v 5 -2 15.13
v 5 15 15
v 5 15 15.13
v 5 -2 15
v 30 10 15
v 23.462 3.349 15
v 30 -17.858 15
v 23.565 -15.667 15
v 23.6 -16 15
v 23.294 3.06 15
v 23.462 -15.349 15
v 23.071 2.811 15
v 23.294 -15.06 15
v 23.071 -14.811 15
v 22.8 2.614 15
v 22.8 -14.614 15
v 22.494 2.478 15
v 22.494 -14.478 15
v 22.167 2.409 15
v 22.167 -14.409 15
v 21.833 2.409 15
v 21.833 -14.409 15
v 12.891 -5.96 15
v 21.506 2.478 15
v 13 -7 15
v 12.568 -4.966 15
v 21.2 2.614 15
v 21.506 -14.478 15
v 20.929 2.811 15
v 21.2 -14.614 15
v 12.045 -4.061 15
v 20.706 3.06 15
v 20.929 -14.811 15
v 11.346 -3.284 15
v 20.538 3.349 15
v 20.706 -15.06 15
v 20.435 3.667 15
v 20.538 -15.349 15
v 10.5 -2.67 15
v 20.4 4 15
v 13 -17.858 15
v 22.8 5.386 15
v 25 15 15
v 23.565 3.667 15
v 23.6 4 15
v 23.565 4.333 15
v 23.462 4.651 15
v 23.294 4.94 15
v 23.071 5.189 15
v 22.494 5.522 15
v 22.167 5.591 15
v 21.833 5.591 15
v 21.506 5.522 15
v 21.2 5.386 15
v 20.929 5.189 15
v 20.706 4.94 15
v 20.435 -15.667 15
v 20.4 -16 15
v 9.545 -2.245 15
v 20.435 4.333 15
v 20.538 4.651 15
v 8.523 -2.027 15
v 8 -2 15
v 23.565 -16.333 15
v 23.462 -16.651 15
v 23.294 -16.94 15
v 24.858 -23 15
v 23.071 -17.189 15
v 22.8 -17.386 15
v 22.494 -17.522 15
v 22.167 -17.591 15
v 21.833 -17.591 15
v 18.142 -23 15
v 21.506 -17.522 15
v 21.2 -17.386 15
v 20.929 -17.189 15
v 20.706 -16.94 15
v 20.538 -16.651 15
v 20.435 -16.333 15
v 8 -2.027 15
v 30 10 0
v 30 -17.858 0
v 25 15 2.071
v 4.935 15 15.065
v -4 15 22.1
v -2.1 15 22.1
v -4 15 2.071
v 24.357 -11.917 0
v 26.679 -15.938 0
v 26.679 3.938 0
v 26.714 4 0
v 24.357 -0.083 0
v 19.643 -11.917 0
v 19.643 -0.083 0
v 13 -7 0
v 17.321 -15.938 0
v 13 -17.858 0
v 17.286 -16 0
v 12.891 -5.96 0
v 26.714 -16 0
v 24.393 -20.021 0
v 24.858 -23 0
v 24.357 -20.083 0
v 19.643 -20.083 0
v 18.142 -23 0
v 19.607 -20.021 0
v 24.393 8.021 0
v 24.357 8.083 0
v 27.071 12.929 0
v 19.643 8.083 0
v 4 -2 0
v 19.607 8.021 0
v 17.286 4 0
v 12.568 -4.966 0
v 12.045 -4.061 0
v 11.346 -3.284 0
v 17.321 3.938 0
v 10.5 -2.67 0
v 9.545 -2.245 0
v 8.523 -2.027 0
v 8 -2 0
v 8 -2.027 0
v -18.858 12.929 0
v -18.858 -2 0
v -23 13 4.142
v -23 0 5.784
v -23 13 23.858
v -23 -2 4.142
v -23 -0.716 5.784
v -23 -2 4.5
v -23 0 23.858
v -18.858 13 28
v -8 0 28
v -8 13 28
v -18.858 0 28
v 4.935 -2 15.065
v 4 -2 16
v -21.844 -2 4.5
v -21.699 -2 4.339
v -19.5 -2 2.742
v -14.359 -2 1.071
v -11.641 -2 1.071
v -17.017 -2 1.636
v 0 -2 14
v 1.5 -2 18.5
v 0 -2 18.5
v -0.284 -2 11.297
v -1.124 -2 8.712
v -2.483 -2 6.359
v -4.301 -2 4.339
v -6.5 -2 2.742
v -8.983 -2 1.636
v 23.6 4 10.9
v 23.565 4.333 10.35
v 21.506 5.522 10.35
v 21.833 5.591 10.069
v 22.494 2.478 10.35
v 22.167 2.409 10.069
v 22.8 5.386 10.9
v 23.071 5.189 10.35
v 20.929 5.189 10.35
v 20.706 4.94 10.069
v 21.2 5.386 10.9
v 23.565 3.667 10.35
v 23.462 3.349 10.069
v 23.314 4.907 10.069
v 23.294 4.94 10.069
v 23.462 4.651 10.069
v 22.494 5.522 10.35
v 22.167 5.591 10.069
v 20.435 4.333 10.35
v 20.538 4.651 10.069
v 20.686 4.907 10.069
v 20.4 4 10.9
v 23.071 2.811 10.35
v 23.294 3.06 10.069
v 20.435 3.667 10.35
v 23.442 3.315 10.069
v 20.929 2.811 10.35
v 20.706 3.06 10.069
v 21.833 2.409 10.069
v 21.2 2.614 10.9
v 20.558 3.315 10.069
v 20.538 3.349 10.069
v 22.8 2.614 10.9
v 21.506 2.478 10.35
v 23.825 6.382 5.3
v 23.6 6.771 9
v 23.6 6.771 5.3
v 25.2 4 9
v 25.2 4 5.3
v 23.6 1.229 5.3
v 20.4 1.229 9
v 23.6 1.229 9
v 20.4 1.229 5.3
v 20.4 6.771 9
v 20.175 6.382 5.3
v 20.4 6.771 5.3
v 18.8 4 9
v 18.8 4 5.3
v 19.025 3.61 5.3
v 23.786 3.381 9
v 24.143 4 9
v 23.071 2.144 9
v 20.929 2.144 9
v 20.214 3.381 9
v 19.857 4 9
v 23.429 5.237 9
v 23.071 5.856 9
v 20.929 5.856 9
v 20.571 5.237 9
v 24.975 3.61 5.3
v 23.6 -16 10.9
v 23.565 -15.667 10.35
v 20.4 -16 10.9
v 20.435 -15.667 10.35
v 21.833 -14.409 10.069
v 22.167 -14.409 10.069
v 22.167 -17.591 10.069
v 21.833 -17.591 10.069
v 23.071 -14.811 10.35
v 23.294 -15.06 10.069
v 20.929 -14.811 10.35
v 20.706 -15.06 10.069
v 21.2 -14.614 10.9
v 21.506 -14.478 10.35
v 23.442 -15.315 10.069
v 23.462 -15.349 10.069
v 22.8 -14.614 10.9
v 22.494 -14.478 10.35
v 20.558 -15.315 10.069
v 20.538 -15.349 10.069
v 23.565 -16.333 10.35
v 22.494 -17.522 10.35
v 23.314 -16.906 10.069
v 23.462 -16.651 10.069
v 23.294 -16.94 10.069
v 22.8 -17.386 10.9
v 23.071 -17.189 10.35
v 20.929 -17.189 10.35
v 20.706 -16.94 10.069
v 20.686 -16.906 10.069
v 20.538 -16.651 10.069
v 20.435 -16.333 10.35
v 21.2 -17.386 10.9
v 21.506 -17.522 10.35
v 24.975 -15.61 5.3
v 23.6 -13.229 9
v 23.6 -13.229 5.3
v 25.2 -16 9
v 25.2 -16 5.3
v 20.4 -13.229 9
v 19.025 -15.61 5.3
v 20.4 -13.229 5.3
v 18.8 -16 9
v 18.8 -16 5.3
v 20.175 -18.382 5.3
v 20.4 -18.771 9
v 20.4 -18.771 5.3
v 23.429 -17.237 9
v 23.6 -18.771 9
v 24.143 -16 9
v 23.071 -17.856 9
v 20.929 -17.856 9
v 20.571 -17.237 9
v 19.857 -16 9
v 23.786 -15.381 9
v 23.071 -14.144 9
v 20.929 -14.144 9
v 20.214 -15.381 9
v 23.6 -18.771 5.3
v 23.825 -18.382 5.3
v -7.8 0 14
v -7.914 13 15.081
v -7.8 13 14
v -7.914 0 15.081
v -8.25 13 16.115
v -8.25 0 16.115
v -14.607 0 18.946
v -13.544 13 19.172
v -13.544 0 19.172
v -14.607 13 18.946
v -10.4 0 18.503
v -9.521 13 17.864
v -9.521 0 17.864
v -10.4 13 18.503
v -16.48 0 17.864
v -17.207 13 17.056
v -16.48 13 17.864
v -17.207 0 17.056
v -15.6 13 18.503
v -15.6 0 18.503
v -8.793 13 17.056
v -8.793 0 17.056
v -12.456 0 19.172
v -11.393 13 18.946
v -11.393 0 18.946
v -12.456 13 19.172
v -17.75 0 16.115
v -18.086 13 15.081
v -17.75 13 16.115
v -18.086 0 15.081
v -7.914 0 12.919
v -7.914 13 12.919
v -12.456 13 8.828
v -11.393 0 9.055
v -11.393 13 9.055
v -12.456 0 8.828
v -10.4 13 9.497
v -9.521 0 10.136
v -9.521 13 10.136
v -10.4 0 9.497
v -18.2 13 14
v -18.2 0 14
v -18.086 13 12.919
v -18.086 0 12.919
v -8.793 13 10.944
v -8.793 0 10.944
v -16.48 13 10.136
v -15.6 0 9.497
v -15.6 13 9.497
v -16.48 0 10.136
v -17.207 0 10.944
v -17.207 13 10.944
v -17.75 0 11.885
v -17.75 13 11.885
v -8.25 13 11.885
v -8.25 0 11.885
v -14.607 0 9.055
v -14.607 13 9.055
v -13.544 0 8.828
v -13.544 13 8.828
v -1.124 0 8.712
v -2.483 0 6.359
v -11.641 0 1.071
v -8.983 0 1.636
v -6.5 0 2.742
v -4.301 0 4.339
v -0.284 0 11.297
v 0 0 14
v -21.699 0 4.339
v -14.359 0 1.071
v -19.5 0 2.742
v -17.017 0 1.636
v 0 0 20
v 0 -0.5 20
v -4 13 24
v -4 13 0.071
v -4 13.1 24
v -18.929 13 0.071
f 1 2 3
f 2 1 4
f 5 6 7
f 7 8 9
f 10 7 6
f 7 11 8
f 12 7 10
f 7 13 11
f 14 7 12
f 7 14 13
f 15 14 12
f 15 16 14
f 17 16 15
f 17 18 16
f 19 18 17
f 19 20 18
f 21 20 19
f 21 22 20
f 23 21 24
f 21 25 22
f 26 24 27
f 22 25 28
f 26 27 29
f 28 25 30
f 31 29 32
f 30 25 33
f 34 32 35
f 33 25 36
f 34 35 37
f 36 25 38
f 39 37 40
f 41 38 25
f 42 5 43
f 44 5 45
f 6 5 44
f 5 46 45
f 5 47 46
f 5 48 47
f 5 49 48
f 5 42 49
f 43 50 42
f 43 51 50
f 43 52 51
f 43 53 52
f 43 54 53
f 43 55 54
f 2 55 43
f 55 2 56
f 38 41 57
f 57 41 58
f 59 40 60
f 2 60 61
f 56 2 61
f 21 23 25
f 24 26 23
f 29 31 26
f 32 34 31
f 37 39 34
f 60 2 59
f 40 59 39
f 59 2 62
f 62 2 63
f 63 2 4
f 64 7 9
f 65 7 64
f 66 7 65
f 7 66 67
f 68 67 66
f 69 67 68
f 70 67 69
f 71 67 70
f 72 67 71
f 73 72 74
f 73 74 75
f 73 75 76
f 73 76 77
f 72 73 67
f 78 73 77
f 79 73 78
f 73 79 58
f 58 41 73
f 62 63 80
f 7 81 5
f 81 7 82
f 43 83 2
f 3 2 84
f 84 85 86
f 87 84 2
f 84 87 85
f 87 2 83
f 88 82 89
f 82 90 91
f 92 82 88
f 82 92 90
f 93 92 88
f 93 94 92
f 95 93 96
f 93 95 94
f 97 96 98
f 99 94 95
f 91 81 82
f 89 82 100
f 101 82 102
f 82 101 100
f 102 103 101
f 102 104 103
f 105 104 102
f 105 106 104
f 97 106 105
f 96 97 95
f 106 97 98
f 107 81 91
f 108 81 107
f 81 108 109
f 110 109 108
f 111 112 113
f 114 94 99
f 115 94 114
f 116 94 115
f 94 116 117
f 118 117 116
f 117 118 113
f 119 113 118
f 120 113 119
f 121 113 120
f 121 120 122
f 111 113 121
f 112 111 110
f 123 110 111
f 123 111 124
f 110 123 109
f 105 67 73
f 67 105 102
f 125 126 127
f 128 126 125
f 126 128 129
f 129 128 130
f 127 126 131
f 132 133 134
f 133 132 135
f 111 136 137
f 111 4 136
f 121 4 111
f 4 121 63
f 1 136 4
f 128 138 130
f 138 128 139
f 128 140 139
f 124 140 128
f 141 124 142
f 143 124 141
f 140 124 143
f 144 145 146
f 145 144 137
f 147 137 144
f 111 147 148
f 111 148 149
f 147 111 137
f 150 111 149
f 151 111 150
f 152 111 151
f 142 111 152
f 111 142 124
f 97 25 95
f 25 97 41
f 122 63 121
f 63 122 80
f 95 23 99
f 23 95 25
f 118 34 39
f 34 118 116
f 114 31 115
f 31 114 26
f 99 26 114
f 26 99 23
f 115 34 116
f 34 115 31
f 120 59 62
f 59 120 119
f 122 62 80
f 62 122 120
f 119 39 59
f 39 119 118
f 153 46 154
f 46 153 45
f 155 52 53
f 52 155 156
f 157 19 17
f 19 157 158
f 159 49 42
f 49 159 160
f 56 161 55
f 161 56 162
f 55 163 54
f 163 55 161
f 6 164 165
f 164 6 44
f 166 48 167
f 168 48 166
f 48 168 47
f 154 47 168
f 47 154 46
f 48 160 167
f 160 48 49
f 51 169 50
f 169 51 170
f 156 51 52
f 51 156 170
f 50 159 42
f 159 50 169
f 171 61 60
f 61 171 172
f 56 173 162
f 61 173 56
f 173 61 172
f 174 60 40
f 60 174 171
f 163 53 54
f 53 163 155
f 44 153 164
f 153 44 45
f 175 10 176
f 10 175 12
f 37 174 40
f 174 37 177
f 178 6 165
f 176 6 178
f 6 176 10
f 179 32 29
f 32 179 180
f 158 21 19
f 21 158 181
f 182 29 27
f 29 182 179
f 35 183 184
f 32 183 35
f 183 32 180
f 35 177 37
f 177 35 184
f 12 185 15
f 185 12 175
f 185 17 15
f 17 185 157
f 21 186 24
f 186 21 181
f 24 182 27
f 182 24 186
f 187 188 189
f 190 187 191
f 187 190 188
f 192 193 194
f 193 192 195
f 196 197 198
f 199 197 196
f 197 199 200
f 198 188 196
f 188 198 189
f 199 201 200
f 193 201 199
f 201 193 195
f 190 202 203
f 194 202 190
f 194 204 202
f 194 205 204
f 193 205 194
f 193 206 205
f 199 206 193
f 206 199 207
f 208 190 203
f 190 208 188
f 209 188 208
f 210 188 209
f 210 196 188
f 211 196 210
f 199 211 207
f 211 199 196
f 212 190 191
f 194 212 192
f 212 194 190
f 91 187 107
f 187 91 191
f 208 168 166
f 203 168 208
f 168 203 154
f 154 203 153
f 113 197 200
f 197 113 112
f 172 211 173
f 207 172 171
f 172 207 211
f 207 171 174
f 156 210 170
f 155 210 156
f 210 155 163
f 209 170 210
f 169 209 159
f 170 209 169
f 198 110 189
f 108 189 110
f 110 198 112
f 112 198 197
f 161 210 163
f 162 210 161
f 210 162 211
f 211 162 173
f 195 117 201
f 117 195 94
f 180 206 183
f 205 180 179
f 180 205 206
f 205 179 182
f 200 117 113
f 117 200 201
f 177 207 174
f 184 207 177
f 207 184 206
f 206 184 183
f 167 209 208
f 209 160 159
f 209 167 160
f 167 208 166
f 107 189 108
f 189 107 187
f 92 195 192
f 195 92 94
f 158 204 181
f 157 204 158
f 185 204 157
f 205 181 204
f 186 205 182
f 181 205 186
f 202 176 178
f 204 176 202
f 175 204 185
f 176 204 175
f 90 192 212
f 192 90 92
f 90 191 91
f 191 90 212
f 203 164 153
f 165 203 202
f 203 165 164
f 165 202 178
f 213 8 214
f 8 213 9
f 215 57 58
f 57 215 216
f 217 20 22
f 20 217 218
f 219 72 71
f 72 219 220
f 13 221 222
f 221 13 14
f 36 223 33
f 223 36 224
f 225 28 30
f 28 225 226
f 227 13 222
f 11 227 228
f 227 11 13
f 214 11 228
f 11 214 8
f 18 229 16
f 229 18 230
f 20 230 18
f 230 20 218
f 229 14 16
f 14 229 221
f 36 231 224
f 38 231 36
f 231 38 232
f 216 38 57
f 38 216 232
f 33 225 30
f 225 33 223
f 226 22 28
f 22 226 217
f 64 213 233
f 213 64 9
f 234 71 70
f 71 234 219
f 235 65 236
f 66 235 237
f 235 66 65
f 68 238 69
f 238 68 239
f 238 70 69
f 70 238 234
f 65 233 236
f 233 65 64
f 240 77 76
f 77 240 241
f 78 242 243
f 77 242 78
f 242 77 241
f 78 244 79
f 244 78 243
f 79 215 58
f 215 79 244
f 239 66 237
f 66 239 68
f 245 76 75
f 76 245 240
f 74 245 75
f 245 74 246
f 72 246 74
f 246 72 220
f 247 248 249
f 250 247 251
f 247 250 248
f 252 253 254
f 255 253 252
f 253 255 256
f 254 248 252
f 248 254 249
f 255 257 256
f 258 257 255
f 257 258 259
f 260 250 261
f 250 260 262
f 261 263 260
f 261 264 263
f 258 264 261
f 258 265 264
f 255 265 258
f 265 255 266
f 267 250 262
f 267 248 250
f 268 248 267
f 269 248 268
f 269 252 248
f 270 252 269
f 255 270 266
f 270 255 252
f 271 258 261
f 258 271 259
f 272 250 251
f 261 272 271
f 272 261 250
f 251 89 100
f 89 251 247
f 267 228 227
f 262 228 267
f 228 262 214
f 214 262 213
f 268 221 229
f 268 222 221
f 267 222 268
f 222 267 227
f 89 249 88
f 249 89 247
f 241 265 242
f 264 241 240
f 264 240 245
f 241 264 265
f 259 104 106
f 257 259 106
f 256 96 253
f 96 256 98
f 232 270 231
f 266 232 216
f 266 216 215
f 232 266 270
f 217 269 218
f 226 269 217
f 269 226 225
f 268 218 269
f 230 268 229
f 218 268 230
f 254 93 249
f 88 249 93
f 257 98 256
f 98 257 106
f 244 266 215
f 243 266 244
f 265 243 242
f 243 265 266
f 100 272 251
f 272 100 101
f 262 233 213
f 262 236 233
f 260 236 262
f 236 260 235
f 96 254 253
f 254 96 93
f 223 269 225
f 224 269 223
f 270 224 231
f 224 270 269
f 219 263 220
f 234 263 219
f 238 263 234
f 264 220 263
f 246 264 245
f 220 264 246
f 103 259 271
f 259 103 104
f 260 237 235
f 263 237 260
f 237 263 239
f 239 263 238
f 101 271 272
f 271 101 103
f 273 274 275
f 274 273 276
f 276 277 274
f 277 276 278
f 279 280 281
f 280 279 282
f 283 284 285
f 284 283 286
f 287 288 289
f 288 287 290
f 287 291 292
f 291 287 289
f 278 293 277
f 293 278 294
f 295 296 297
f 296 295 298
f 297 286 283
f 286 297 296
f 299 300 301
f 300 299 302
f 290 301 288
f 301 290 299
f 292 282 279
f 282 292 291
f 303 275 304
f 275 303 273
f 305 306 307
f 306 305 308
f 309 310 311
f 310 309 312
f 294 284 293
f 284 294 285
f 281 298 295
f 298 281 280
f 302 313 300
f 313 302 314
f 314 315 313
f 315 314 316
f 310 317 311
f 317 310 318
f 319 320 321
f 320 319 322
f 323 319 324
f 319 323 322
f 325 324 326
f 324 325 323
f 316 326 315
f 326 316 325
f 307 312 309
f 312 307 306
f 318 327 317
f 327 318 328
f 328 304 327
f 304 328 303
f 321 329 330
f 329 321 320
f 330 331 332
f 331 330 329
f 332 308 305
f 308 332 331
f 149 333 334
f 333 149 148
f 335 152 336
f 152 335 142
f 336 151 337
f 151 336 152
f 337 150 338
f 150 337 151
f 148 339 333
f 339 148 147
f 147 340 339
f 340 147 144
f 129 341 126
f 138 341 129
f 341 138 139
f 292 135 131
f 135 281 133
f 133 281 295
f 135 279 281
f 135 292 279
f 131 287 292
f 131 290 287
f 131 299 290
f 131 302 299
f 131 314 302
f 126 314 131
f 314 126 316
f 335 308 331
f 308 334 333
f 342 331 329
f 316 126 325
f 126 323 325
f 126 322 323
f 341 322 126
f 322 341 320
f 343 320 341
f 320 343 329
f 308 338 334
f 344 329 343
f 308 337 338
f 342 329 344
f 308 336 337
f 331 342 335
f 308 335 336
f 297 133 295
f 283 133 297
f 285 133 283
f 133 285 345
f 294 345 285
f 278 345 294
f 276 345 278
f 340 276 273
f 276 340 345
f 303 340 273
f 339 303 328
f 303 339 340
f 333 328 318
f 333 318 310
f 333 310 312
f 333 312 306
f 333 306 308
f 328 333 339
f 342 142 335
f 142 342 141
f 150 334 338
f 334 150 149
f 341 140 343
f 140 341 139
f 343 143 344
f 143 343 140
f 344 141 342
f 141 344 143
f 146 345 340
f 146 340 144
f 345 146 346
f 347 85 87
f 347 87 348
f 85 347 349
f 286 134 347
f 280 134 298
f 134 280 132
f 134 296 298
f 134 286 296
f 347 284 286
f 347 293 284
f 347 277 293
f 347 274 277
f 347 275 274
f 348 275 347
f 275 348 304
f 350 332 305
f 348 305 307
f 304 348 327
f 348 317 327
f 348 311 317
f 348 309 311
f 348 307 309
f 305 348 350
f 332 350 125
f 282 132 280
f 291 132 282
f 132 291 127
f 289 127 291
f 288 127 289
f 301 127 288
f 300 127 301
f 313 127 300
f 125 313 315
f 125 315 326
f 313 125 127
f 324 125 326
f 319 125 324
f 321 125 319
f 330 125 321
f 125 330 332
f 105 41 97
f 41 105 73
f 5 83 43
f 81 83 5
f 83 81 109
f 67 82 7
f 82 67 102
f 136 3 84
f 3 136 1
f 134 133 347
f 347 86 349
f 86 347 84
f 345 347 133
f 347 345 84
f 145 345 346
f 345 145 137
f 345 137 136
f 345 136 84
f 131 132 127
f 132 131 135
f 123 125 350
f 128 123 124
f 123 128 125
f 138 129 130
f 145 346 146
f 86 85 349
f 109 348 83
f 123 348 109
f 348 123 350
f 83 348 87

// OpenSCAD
//Original Prusa

// PRUSA iteration3
// PSU-Y reinforcement part 
// GNU GPL v3
// Josef Průša <iam@josefprusa.cz> and contributors
// http://www.reprap.org/wiki/Prusa_Mendel
// http://prusamendel.org

module base()
{
union(){
    difference(){
        union(){
        translate([ 5, -23, 0 ]) cube([ 25, 38, 15 ]);  // horizontal plate
        translate([ -23, -2, 0 ]) cube([ 28, 17, 28 ]);  // Y_Corner block    
        }
        translate( [ 4 , -25 , -1 ] ) cube( [ 9 , 23 , 18 ] );  //  holder side cut
    }
    difference(){    
        translate([ 8, -7, 0 ]) cube([ 5, 5, 15 ]);  // fillet block
        translate([ 8, -7, -1 ]) cylinder( h = 28, r = 5, $fn=30);  // fillet cut
        }
    }
}


module cutout()
    {
    translate([ 22, 4 , -2 ]) cylinder( h = 20, r = 1.6, $fn=30);  // M3 hole A
    translate([ 22, 4 , -1 ]) cylinder( h = 10, r = 3.2, $fn=6);  // M3 nut body A        
    translate([ 22, 4 , -1 ]) cylinder( h = 14, r1 = 3.2, r1 = 5, $fn=6);  // M3 nut hole fillet A
        
    translate([ 22, -16 , -2 ]) cylinder( h = 20, r = 1.6, $fn=30);  // M3 hole B
    translate([ 22, -16 , -1 ]) cylinder( h = 10, r = 3.2, $fn=6);  // M3 nut body B
    translate([ 22, -16 , -1 ]) cylinder( h = 14, r1 = 3.2, r1 = 5, $fn=6);  // M3 nut hole B fillet

    translate([ -13, 14 , 14 ]) rotate([90,0,0]) cylinder( h = 25, r = 5.2, $fn=30);  // threaded rod
    
    translate([ -13, 0 , 14 ]) rotate([90,0,0]) cylinder( h = 4, r = 13, $fn=30);  // washer
    translate([ -29, -7 , 14 ])  cube([ 29, 7, 18 ]);  // washer upper cut
    
    translate([ -24, 13 , -1 ]) cube([ 20, 15, 30 ]);  // Y_Corner cutaway

    //vertical corners 45 degree cut
    translate( [ 12, -31 , -2 ] ) rotate( [0,0,45] ) cube([ 10 , 10 , 21 ]);  
    translate([ 31,  9, -2 ])  rotate( [0,0,45] ) cube([ 10, 10, 21 ]);  
    translate([ 31, -31, -2 ]) rotate( [0,0,45] ) cube([ 10, 10, 21 ]);  

    // horizontal corners 45 degree cut
    translate([ -8.5, -8, 28.5 ]) rotate( [0,45,0] ) cube([ 19, 40, 20 ]);  
    translate([ -31, -6, 30 ]) rotate( [0,45,0])  cube([ 10, 35, 10 ]);  
    translate([ -31, -6, -2 ]) rotate( [0,45,0] ) cube([ 10, 35, 10 ]);  
    translate([ -26, -4,  2.5 ]) rotate( [45,0,0] ) cube([ 5, 5, 5 ]);  
    translate([ -1, -4, 16.5 ]) rotate( [45,0,0] ) cube([ 5, 5, 5 ]);  
    translate([ -5, 16.6, 20.5 ]) rotate( [45,0,0] ) cube([ 5, 5, 5 ]);  
    translate([ -30, 15, -5 ]) rotate( [45,0,0] ) cube([ 70, 5, 5 ]);  
}

module final_part(){
difference()
{
    base();
    cutout();
    }
}

final_part();
